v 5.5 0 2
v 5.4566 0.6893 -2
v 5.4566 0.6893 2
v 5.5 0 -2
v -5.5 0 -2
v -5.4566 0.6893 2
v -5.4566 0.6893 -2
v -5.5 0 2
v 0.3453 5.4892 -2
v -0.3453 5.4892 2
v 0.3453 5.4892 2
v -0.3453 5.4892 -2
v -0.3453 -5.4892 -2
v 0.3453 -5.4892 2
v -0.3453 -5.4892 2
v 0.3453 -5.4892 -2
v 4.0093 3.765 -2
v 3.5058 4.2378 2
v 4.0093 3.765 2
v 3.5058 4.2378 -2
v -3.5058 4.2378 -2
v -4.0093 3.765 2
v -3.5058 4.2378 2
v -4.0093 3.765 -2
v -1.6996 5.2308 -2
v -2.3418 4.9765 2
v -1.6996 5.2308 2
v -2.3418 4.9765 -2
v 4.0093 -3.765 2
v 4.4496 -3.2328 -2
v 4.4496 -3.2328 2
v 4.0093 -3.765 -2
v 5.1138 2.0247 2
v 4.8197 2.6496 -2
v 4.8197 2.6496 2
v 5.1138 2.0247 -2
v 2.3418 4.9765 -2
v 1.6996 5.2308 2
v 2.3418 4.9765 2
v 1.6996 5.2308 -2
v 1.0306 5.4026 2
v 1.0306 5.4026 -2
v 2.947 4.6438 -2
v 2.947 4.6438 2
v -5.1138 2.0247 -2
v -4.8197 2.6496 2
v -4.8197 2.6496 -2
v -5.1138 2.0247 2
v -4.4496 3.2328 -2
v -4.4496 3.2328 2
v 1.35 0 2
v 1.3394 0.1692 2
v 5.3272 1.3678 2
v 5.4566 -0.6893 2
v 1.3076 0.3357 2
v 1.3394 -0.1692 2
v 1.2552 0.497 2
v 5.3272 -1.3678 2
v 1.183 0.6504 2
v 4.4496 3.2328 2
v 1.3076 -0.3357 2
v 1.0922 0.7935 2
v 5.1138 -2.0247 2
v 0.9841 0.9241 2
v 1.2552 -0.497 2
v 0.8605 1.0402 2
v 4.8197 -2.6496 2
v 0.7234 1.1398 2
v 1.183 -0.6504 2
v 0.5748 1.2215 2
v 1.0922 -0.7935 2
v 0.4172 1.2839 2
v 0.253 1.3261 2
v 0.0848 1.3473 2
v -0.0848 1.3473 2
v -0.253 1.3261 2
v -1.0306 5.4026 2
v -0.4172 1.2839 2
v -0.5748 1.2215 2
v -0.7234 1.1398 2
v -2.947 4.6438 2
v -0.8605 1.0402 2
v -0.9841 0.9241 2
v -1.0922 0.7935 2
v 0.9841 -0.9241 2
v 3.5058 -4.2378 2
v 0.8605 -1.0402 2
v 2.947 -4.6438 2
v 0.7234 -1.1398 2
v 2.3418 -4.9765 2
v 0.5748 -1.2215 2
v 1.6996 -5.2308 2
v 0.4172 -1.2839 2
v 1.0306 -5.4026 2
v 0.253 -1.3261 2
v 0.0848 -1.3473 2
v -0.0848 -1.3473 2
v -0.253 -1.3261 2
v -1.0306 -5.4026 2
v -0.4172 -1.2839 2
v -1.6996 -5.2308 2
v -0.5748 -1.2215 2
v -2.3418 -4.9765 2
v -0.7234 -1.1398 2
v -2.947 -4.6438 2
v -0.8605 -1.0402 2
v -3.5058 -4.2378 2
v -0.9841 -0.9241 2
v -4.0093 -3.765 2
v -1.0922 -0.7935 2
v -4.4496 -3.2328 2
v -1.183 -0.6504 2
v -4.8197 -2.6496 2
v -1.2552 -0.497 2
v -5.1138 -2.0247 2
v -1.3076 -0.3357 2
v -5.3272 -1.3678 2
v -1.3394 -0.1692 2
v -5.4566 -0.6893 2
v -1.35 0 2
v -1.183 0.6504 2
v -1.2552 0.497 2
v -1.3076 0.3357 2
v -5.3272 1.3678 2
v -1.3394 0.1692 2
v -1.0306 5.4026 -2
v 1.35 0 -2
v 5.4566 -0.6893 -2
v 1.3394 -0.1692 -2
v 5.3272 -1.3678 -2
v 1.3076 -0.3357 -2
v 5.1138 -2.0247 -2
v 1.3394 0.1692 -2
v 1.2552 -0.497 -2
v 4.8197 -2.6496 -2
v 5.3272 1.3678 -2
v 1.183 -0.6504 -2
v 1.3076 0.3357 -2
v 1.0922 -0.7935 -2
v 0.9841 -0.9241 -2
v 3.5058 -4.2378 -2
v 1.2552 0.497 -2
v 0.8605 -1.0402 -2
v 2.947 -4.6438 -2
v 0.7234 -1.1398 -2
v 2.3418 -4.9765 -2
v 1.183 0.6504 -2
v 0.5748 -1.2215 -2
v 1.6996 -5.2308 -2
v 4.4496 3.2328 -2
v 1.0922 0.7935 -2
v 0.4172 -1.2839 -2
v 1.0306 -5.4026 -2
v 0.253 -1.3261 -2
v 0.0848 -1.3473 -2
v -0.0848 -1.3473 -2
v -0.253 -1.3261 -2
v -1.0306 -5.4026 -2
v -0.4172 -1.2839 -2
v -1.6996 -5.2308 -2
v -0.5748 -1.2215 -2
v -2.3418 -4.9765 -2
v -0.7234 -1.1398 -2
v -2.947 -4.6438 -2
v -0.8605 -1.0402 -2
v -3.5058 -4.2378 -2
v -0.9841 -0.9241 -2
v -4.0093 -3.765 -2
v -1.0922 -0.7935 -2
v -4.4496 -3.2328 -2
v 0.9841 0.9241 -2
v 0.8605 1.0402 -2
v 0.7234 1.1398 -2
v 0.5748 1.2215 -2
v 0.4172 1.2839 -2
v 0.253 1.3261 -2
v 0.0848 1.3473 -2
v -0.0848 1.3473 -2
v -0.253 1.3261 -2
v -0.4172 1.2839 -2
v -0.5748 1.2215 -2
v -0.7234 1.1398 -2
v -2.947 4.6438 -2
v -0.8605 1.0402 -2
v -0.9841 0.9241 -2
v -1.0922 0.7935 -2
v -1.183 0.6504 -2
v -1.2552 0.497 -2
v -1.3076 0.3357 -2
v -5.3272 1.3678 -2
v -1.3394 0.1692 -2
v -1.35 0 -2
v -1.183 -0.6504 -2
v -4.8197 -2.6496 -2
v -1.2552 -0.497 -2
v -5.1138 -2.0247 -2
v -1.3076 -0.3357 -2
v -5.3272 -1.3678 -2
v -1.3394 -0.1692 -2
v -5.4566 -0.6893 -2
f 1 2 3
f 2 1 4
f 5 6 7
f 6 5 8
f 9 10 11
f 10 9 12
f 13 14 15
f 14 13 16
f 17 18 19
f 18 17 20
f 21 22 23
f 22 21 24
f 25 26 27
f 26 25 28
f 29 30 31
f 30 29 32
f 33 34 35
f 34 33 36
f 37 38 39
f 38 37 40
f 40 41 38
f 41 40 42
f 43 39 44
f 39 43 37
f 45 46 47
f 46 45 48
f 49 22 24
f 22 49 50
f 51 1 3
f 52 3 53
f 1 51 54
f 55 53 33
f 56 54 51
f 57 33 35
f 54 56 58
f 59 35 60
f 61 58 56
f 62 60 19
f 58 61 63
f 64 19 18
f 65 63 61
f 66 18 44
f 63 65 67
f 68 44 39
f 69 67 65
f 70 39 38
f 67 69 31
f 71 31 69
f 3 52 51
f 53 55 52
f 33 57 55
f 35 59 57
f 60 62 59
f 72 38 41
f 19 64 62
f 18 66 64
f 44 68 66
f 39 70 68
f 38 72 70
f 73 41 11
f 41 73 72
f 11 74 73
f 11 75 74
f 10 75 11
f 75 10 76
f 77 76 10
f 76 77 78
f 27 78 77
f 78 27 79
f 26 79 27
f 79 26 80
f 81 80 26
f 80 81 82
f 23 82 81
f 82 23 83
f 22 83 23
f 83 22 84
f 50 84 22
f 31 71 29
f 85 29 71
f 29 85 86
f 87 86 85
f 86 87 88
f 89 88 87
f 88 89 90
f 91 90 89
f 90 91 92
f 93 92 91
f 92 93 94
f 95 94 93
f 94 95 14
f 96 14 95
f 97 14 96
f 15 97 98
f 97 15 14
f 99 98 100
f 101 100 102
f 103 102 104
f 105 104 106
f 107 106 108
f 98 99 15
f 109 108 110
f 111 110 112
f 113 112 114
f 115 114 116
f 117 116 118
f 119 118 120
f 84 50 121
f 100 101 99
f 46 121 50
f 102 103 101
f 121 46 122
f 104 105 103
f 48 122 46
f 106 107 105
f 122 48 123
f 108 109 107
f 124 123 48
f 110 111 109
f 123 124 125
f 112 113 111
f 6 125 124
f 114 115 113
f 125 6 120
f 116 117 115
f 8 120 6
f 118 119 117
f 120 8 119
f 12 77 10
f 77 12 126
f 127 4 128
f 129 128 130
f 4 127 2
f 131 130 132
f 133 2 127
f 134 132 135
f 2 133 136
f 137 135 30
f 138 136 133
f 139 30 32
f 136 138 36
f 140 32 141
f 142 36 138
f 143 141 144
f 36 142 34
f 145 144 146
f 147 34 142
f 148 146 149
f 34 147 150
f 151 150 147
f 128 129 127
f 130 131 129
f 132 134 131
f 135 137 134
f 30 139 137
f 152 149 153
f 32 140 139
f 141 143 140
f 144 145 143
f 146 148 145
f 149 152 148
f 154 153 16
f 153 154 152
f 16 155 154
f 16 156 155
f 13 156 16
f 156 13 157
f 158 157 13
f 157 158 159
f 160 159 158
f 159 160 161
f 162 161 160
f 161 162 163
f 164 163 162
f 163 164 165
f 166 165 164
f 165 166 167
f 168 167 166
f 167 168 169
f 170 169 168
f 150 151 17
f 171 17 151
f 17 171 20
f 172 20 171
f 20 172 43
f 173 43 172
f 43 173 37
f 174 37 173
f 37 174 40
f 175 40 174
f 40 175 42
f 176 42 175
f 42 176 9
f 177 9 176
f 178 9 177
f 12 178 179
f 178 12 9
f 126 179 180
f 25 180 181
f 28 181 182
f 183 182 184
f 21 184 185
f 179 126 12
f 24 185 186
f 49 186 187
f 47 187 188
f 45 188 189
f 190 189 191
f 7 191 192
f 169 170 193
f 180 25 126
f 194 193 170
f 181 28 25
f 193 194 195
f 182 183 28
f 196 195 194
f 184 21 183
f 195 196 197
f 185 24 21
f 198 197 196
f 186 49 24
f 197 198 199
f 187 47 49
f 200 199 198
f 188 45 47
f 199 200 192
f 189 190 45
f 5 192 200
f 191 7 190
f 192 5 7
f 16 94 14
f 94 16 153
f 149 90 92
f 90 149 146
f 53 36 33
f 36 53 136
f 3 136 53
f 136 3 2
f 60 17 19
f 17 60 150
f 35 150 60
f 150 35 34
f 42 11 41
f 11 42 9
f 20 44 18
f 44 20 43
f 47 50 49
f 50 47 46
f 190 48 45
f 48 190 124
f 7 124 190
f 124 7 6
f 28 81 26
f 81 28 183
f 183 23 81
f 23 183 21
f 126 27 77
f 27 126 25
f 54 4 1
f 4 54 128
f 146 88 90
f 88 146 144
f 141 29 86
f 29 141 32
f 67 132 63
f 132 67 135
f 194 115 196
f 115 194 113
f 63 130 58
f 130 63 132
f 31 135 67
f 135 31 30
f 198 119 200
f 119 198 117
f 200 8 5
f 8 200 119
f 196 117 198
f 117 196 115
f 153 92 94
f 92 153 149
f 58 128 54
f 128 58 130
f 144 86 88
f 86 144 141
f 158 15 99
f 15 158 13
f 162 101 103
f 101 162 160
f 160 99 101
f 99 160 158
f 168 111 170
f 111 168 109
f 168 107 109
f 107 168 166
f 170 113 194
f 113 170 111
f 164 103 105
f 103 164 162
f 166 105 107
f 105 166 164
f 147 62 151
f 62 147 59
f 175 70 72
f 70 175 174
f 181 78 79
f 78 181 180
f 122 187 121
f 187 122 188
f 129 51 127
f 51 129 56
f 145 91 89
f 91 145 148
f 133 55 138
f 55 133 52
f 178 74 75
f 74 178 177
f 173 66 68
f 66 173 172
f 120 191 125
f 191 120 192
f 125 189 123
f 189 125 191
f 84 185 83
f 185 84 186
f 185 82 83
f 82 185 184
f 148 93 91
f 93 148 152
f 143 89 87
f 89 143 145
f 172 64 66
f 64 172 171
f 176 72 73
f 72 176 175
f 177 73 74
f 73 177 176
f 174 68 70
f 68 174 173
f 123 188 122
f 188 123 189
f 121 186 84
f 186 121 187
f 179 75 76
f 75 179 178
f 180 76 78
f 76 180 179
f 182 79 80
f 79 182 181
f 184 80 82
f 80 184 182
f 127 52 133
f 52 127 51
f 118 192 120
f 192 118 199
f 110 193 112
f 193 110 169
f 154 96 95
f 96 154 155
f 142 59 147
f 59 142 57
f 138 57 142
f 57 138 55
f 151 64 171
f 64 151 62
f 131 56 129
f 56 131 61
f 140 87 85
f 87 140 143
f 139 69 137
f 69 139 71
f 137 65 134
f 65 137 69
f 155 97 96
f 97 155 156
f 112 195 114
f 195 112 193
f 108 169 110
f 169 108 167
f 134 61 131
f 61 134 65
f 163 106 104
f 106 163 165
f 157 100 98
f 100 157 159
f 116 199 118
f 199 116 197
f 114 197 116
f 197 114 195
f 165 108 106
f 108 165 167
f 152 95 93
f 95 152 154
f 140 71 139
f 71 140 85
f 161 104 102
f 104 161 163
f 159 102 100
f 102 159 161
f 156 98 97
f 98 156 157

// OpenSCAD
$fn = 50;


difference() {
	union() {
		translate(v = [0, 0, -2.0000000000]) {
			cylinder(h = 4, r = 5.5000000000);
		}
	}
	union() {
		translate(v = [0, 0, -100.0000000000]) {
			cylinder(h = 200, r = 1.3500000000);
		}
	}
}
